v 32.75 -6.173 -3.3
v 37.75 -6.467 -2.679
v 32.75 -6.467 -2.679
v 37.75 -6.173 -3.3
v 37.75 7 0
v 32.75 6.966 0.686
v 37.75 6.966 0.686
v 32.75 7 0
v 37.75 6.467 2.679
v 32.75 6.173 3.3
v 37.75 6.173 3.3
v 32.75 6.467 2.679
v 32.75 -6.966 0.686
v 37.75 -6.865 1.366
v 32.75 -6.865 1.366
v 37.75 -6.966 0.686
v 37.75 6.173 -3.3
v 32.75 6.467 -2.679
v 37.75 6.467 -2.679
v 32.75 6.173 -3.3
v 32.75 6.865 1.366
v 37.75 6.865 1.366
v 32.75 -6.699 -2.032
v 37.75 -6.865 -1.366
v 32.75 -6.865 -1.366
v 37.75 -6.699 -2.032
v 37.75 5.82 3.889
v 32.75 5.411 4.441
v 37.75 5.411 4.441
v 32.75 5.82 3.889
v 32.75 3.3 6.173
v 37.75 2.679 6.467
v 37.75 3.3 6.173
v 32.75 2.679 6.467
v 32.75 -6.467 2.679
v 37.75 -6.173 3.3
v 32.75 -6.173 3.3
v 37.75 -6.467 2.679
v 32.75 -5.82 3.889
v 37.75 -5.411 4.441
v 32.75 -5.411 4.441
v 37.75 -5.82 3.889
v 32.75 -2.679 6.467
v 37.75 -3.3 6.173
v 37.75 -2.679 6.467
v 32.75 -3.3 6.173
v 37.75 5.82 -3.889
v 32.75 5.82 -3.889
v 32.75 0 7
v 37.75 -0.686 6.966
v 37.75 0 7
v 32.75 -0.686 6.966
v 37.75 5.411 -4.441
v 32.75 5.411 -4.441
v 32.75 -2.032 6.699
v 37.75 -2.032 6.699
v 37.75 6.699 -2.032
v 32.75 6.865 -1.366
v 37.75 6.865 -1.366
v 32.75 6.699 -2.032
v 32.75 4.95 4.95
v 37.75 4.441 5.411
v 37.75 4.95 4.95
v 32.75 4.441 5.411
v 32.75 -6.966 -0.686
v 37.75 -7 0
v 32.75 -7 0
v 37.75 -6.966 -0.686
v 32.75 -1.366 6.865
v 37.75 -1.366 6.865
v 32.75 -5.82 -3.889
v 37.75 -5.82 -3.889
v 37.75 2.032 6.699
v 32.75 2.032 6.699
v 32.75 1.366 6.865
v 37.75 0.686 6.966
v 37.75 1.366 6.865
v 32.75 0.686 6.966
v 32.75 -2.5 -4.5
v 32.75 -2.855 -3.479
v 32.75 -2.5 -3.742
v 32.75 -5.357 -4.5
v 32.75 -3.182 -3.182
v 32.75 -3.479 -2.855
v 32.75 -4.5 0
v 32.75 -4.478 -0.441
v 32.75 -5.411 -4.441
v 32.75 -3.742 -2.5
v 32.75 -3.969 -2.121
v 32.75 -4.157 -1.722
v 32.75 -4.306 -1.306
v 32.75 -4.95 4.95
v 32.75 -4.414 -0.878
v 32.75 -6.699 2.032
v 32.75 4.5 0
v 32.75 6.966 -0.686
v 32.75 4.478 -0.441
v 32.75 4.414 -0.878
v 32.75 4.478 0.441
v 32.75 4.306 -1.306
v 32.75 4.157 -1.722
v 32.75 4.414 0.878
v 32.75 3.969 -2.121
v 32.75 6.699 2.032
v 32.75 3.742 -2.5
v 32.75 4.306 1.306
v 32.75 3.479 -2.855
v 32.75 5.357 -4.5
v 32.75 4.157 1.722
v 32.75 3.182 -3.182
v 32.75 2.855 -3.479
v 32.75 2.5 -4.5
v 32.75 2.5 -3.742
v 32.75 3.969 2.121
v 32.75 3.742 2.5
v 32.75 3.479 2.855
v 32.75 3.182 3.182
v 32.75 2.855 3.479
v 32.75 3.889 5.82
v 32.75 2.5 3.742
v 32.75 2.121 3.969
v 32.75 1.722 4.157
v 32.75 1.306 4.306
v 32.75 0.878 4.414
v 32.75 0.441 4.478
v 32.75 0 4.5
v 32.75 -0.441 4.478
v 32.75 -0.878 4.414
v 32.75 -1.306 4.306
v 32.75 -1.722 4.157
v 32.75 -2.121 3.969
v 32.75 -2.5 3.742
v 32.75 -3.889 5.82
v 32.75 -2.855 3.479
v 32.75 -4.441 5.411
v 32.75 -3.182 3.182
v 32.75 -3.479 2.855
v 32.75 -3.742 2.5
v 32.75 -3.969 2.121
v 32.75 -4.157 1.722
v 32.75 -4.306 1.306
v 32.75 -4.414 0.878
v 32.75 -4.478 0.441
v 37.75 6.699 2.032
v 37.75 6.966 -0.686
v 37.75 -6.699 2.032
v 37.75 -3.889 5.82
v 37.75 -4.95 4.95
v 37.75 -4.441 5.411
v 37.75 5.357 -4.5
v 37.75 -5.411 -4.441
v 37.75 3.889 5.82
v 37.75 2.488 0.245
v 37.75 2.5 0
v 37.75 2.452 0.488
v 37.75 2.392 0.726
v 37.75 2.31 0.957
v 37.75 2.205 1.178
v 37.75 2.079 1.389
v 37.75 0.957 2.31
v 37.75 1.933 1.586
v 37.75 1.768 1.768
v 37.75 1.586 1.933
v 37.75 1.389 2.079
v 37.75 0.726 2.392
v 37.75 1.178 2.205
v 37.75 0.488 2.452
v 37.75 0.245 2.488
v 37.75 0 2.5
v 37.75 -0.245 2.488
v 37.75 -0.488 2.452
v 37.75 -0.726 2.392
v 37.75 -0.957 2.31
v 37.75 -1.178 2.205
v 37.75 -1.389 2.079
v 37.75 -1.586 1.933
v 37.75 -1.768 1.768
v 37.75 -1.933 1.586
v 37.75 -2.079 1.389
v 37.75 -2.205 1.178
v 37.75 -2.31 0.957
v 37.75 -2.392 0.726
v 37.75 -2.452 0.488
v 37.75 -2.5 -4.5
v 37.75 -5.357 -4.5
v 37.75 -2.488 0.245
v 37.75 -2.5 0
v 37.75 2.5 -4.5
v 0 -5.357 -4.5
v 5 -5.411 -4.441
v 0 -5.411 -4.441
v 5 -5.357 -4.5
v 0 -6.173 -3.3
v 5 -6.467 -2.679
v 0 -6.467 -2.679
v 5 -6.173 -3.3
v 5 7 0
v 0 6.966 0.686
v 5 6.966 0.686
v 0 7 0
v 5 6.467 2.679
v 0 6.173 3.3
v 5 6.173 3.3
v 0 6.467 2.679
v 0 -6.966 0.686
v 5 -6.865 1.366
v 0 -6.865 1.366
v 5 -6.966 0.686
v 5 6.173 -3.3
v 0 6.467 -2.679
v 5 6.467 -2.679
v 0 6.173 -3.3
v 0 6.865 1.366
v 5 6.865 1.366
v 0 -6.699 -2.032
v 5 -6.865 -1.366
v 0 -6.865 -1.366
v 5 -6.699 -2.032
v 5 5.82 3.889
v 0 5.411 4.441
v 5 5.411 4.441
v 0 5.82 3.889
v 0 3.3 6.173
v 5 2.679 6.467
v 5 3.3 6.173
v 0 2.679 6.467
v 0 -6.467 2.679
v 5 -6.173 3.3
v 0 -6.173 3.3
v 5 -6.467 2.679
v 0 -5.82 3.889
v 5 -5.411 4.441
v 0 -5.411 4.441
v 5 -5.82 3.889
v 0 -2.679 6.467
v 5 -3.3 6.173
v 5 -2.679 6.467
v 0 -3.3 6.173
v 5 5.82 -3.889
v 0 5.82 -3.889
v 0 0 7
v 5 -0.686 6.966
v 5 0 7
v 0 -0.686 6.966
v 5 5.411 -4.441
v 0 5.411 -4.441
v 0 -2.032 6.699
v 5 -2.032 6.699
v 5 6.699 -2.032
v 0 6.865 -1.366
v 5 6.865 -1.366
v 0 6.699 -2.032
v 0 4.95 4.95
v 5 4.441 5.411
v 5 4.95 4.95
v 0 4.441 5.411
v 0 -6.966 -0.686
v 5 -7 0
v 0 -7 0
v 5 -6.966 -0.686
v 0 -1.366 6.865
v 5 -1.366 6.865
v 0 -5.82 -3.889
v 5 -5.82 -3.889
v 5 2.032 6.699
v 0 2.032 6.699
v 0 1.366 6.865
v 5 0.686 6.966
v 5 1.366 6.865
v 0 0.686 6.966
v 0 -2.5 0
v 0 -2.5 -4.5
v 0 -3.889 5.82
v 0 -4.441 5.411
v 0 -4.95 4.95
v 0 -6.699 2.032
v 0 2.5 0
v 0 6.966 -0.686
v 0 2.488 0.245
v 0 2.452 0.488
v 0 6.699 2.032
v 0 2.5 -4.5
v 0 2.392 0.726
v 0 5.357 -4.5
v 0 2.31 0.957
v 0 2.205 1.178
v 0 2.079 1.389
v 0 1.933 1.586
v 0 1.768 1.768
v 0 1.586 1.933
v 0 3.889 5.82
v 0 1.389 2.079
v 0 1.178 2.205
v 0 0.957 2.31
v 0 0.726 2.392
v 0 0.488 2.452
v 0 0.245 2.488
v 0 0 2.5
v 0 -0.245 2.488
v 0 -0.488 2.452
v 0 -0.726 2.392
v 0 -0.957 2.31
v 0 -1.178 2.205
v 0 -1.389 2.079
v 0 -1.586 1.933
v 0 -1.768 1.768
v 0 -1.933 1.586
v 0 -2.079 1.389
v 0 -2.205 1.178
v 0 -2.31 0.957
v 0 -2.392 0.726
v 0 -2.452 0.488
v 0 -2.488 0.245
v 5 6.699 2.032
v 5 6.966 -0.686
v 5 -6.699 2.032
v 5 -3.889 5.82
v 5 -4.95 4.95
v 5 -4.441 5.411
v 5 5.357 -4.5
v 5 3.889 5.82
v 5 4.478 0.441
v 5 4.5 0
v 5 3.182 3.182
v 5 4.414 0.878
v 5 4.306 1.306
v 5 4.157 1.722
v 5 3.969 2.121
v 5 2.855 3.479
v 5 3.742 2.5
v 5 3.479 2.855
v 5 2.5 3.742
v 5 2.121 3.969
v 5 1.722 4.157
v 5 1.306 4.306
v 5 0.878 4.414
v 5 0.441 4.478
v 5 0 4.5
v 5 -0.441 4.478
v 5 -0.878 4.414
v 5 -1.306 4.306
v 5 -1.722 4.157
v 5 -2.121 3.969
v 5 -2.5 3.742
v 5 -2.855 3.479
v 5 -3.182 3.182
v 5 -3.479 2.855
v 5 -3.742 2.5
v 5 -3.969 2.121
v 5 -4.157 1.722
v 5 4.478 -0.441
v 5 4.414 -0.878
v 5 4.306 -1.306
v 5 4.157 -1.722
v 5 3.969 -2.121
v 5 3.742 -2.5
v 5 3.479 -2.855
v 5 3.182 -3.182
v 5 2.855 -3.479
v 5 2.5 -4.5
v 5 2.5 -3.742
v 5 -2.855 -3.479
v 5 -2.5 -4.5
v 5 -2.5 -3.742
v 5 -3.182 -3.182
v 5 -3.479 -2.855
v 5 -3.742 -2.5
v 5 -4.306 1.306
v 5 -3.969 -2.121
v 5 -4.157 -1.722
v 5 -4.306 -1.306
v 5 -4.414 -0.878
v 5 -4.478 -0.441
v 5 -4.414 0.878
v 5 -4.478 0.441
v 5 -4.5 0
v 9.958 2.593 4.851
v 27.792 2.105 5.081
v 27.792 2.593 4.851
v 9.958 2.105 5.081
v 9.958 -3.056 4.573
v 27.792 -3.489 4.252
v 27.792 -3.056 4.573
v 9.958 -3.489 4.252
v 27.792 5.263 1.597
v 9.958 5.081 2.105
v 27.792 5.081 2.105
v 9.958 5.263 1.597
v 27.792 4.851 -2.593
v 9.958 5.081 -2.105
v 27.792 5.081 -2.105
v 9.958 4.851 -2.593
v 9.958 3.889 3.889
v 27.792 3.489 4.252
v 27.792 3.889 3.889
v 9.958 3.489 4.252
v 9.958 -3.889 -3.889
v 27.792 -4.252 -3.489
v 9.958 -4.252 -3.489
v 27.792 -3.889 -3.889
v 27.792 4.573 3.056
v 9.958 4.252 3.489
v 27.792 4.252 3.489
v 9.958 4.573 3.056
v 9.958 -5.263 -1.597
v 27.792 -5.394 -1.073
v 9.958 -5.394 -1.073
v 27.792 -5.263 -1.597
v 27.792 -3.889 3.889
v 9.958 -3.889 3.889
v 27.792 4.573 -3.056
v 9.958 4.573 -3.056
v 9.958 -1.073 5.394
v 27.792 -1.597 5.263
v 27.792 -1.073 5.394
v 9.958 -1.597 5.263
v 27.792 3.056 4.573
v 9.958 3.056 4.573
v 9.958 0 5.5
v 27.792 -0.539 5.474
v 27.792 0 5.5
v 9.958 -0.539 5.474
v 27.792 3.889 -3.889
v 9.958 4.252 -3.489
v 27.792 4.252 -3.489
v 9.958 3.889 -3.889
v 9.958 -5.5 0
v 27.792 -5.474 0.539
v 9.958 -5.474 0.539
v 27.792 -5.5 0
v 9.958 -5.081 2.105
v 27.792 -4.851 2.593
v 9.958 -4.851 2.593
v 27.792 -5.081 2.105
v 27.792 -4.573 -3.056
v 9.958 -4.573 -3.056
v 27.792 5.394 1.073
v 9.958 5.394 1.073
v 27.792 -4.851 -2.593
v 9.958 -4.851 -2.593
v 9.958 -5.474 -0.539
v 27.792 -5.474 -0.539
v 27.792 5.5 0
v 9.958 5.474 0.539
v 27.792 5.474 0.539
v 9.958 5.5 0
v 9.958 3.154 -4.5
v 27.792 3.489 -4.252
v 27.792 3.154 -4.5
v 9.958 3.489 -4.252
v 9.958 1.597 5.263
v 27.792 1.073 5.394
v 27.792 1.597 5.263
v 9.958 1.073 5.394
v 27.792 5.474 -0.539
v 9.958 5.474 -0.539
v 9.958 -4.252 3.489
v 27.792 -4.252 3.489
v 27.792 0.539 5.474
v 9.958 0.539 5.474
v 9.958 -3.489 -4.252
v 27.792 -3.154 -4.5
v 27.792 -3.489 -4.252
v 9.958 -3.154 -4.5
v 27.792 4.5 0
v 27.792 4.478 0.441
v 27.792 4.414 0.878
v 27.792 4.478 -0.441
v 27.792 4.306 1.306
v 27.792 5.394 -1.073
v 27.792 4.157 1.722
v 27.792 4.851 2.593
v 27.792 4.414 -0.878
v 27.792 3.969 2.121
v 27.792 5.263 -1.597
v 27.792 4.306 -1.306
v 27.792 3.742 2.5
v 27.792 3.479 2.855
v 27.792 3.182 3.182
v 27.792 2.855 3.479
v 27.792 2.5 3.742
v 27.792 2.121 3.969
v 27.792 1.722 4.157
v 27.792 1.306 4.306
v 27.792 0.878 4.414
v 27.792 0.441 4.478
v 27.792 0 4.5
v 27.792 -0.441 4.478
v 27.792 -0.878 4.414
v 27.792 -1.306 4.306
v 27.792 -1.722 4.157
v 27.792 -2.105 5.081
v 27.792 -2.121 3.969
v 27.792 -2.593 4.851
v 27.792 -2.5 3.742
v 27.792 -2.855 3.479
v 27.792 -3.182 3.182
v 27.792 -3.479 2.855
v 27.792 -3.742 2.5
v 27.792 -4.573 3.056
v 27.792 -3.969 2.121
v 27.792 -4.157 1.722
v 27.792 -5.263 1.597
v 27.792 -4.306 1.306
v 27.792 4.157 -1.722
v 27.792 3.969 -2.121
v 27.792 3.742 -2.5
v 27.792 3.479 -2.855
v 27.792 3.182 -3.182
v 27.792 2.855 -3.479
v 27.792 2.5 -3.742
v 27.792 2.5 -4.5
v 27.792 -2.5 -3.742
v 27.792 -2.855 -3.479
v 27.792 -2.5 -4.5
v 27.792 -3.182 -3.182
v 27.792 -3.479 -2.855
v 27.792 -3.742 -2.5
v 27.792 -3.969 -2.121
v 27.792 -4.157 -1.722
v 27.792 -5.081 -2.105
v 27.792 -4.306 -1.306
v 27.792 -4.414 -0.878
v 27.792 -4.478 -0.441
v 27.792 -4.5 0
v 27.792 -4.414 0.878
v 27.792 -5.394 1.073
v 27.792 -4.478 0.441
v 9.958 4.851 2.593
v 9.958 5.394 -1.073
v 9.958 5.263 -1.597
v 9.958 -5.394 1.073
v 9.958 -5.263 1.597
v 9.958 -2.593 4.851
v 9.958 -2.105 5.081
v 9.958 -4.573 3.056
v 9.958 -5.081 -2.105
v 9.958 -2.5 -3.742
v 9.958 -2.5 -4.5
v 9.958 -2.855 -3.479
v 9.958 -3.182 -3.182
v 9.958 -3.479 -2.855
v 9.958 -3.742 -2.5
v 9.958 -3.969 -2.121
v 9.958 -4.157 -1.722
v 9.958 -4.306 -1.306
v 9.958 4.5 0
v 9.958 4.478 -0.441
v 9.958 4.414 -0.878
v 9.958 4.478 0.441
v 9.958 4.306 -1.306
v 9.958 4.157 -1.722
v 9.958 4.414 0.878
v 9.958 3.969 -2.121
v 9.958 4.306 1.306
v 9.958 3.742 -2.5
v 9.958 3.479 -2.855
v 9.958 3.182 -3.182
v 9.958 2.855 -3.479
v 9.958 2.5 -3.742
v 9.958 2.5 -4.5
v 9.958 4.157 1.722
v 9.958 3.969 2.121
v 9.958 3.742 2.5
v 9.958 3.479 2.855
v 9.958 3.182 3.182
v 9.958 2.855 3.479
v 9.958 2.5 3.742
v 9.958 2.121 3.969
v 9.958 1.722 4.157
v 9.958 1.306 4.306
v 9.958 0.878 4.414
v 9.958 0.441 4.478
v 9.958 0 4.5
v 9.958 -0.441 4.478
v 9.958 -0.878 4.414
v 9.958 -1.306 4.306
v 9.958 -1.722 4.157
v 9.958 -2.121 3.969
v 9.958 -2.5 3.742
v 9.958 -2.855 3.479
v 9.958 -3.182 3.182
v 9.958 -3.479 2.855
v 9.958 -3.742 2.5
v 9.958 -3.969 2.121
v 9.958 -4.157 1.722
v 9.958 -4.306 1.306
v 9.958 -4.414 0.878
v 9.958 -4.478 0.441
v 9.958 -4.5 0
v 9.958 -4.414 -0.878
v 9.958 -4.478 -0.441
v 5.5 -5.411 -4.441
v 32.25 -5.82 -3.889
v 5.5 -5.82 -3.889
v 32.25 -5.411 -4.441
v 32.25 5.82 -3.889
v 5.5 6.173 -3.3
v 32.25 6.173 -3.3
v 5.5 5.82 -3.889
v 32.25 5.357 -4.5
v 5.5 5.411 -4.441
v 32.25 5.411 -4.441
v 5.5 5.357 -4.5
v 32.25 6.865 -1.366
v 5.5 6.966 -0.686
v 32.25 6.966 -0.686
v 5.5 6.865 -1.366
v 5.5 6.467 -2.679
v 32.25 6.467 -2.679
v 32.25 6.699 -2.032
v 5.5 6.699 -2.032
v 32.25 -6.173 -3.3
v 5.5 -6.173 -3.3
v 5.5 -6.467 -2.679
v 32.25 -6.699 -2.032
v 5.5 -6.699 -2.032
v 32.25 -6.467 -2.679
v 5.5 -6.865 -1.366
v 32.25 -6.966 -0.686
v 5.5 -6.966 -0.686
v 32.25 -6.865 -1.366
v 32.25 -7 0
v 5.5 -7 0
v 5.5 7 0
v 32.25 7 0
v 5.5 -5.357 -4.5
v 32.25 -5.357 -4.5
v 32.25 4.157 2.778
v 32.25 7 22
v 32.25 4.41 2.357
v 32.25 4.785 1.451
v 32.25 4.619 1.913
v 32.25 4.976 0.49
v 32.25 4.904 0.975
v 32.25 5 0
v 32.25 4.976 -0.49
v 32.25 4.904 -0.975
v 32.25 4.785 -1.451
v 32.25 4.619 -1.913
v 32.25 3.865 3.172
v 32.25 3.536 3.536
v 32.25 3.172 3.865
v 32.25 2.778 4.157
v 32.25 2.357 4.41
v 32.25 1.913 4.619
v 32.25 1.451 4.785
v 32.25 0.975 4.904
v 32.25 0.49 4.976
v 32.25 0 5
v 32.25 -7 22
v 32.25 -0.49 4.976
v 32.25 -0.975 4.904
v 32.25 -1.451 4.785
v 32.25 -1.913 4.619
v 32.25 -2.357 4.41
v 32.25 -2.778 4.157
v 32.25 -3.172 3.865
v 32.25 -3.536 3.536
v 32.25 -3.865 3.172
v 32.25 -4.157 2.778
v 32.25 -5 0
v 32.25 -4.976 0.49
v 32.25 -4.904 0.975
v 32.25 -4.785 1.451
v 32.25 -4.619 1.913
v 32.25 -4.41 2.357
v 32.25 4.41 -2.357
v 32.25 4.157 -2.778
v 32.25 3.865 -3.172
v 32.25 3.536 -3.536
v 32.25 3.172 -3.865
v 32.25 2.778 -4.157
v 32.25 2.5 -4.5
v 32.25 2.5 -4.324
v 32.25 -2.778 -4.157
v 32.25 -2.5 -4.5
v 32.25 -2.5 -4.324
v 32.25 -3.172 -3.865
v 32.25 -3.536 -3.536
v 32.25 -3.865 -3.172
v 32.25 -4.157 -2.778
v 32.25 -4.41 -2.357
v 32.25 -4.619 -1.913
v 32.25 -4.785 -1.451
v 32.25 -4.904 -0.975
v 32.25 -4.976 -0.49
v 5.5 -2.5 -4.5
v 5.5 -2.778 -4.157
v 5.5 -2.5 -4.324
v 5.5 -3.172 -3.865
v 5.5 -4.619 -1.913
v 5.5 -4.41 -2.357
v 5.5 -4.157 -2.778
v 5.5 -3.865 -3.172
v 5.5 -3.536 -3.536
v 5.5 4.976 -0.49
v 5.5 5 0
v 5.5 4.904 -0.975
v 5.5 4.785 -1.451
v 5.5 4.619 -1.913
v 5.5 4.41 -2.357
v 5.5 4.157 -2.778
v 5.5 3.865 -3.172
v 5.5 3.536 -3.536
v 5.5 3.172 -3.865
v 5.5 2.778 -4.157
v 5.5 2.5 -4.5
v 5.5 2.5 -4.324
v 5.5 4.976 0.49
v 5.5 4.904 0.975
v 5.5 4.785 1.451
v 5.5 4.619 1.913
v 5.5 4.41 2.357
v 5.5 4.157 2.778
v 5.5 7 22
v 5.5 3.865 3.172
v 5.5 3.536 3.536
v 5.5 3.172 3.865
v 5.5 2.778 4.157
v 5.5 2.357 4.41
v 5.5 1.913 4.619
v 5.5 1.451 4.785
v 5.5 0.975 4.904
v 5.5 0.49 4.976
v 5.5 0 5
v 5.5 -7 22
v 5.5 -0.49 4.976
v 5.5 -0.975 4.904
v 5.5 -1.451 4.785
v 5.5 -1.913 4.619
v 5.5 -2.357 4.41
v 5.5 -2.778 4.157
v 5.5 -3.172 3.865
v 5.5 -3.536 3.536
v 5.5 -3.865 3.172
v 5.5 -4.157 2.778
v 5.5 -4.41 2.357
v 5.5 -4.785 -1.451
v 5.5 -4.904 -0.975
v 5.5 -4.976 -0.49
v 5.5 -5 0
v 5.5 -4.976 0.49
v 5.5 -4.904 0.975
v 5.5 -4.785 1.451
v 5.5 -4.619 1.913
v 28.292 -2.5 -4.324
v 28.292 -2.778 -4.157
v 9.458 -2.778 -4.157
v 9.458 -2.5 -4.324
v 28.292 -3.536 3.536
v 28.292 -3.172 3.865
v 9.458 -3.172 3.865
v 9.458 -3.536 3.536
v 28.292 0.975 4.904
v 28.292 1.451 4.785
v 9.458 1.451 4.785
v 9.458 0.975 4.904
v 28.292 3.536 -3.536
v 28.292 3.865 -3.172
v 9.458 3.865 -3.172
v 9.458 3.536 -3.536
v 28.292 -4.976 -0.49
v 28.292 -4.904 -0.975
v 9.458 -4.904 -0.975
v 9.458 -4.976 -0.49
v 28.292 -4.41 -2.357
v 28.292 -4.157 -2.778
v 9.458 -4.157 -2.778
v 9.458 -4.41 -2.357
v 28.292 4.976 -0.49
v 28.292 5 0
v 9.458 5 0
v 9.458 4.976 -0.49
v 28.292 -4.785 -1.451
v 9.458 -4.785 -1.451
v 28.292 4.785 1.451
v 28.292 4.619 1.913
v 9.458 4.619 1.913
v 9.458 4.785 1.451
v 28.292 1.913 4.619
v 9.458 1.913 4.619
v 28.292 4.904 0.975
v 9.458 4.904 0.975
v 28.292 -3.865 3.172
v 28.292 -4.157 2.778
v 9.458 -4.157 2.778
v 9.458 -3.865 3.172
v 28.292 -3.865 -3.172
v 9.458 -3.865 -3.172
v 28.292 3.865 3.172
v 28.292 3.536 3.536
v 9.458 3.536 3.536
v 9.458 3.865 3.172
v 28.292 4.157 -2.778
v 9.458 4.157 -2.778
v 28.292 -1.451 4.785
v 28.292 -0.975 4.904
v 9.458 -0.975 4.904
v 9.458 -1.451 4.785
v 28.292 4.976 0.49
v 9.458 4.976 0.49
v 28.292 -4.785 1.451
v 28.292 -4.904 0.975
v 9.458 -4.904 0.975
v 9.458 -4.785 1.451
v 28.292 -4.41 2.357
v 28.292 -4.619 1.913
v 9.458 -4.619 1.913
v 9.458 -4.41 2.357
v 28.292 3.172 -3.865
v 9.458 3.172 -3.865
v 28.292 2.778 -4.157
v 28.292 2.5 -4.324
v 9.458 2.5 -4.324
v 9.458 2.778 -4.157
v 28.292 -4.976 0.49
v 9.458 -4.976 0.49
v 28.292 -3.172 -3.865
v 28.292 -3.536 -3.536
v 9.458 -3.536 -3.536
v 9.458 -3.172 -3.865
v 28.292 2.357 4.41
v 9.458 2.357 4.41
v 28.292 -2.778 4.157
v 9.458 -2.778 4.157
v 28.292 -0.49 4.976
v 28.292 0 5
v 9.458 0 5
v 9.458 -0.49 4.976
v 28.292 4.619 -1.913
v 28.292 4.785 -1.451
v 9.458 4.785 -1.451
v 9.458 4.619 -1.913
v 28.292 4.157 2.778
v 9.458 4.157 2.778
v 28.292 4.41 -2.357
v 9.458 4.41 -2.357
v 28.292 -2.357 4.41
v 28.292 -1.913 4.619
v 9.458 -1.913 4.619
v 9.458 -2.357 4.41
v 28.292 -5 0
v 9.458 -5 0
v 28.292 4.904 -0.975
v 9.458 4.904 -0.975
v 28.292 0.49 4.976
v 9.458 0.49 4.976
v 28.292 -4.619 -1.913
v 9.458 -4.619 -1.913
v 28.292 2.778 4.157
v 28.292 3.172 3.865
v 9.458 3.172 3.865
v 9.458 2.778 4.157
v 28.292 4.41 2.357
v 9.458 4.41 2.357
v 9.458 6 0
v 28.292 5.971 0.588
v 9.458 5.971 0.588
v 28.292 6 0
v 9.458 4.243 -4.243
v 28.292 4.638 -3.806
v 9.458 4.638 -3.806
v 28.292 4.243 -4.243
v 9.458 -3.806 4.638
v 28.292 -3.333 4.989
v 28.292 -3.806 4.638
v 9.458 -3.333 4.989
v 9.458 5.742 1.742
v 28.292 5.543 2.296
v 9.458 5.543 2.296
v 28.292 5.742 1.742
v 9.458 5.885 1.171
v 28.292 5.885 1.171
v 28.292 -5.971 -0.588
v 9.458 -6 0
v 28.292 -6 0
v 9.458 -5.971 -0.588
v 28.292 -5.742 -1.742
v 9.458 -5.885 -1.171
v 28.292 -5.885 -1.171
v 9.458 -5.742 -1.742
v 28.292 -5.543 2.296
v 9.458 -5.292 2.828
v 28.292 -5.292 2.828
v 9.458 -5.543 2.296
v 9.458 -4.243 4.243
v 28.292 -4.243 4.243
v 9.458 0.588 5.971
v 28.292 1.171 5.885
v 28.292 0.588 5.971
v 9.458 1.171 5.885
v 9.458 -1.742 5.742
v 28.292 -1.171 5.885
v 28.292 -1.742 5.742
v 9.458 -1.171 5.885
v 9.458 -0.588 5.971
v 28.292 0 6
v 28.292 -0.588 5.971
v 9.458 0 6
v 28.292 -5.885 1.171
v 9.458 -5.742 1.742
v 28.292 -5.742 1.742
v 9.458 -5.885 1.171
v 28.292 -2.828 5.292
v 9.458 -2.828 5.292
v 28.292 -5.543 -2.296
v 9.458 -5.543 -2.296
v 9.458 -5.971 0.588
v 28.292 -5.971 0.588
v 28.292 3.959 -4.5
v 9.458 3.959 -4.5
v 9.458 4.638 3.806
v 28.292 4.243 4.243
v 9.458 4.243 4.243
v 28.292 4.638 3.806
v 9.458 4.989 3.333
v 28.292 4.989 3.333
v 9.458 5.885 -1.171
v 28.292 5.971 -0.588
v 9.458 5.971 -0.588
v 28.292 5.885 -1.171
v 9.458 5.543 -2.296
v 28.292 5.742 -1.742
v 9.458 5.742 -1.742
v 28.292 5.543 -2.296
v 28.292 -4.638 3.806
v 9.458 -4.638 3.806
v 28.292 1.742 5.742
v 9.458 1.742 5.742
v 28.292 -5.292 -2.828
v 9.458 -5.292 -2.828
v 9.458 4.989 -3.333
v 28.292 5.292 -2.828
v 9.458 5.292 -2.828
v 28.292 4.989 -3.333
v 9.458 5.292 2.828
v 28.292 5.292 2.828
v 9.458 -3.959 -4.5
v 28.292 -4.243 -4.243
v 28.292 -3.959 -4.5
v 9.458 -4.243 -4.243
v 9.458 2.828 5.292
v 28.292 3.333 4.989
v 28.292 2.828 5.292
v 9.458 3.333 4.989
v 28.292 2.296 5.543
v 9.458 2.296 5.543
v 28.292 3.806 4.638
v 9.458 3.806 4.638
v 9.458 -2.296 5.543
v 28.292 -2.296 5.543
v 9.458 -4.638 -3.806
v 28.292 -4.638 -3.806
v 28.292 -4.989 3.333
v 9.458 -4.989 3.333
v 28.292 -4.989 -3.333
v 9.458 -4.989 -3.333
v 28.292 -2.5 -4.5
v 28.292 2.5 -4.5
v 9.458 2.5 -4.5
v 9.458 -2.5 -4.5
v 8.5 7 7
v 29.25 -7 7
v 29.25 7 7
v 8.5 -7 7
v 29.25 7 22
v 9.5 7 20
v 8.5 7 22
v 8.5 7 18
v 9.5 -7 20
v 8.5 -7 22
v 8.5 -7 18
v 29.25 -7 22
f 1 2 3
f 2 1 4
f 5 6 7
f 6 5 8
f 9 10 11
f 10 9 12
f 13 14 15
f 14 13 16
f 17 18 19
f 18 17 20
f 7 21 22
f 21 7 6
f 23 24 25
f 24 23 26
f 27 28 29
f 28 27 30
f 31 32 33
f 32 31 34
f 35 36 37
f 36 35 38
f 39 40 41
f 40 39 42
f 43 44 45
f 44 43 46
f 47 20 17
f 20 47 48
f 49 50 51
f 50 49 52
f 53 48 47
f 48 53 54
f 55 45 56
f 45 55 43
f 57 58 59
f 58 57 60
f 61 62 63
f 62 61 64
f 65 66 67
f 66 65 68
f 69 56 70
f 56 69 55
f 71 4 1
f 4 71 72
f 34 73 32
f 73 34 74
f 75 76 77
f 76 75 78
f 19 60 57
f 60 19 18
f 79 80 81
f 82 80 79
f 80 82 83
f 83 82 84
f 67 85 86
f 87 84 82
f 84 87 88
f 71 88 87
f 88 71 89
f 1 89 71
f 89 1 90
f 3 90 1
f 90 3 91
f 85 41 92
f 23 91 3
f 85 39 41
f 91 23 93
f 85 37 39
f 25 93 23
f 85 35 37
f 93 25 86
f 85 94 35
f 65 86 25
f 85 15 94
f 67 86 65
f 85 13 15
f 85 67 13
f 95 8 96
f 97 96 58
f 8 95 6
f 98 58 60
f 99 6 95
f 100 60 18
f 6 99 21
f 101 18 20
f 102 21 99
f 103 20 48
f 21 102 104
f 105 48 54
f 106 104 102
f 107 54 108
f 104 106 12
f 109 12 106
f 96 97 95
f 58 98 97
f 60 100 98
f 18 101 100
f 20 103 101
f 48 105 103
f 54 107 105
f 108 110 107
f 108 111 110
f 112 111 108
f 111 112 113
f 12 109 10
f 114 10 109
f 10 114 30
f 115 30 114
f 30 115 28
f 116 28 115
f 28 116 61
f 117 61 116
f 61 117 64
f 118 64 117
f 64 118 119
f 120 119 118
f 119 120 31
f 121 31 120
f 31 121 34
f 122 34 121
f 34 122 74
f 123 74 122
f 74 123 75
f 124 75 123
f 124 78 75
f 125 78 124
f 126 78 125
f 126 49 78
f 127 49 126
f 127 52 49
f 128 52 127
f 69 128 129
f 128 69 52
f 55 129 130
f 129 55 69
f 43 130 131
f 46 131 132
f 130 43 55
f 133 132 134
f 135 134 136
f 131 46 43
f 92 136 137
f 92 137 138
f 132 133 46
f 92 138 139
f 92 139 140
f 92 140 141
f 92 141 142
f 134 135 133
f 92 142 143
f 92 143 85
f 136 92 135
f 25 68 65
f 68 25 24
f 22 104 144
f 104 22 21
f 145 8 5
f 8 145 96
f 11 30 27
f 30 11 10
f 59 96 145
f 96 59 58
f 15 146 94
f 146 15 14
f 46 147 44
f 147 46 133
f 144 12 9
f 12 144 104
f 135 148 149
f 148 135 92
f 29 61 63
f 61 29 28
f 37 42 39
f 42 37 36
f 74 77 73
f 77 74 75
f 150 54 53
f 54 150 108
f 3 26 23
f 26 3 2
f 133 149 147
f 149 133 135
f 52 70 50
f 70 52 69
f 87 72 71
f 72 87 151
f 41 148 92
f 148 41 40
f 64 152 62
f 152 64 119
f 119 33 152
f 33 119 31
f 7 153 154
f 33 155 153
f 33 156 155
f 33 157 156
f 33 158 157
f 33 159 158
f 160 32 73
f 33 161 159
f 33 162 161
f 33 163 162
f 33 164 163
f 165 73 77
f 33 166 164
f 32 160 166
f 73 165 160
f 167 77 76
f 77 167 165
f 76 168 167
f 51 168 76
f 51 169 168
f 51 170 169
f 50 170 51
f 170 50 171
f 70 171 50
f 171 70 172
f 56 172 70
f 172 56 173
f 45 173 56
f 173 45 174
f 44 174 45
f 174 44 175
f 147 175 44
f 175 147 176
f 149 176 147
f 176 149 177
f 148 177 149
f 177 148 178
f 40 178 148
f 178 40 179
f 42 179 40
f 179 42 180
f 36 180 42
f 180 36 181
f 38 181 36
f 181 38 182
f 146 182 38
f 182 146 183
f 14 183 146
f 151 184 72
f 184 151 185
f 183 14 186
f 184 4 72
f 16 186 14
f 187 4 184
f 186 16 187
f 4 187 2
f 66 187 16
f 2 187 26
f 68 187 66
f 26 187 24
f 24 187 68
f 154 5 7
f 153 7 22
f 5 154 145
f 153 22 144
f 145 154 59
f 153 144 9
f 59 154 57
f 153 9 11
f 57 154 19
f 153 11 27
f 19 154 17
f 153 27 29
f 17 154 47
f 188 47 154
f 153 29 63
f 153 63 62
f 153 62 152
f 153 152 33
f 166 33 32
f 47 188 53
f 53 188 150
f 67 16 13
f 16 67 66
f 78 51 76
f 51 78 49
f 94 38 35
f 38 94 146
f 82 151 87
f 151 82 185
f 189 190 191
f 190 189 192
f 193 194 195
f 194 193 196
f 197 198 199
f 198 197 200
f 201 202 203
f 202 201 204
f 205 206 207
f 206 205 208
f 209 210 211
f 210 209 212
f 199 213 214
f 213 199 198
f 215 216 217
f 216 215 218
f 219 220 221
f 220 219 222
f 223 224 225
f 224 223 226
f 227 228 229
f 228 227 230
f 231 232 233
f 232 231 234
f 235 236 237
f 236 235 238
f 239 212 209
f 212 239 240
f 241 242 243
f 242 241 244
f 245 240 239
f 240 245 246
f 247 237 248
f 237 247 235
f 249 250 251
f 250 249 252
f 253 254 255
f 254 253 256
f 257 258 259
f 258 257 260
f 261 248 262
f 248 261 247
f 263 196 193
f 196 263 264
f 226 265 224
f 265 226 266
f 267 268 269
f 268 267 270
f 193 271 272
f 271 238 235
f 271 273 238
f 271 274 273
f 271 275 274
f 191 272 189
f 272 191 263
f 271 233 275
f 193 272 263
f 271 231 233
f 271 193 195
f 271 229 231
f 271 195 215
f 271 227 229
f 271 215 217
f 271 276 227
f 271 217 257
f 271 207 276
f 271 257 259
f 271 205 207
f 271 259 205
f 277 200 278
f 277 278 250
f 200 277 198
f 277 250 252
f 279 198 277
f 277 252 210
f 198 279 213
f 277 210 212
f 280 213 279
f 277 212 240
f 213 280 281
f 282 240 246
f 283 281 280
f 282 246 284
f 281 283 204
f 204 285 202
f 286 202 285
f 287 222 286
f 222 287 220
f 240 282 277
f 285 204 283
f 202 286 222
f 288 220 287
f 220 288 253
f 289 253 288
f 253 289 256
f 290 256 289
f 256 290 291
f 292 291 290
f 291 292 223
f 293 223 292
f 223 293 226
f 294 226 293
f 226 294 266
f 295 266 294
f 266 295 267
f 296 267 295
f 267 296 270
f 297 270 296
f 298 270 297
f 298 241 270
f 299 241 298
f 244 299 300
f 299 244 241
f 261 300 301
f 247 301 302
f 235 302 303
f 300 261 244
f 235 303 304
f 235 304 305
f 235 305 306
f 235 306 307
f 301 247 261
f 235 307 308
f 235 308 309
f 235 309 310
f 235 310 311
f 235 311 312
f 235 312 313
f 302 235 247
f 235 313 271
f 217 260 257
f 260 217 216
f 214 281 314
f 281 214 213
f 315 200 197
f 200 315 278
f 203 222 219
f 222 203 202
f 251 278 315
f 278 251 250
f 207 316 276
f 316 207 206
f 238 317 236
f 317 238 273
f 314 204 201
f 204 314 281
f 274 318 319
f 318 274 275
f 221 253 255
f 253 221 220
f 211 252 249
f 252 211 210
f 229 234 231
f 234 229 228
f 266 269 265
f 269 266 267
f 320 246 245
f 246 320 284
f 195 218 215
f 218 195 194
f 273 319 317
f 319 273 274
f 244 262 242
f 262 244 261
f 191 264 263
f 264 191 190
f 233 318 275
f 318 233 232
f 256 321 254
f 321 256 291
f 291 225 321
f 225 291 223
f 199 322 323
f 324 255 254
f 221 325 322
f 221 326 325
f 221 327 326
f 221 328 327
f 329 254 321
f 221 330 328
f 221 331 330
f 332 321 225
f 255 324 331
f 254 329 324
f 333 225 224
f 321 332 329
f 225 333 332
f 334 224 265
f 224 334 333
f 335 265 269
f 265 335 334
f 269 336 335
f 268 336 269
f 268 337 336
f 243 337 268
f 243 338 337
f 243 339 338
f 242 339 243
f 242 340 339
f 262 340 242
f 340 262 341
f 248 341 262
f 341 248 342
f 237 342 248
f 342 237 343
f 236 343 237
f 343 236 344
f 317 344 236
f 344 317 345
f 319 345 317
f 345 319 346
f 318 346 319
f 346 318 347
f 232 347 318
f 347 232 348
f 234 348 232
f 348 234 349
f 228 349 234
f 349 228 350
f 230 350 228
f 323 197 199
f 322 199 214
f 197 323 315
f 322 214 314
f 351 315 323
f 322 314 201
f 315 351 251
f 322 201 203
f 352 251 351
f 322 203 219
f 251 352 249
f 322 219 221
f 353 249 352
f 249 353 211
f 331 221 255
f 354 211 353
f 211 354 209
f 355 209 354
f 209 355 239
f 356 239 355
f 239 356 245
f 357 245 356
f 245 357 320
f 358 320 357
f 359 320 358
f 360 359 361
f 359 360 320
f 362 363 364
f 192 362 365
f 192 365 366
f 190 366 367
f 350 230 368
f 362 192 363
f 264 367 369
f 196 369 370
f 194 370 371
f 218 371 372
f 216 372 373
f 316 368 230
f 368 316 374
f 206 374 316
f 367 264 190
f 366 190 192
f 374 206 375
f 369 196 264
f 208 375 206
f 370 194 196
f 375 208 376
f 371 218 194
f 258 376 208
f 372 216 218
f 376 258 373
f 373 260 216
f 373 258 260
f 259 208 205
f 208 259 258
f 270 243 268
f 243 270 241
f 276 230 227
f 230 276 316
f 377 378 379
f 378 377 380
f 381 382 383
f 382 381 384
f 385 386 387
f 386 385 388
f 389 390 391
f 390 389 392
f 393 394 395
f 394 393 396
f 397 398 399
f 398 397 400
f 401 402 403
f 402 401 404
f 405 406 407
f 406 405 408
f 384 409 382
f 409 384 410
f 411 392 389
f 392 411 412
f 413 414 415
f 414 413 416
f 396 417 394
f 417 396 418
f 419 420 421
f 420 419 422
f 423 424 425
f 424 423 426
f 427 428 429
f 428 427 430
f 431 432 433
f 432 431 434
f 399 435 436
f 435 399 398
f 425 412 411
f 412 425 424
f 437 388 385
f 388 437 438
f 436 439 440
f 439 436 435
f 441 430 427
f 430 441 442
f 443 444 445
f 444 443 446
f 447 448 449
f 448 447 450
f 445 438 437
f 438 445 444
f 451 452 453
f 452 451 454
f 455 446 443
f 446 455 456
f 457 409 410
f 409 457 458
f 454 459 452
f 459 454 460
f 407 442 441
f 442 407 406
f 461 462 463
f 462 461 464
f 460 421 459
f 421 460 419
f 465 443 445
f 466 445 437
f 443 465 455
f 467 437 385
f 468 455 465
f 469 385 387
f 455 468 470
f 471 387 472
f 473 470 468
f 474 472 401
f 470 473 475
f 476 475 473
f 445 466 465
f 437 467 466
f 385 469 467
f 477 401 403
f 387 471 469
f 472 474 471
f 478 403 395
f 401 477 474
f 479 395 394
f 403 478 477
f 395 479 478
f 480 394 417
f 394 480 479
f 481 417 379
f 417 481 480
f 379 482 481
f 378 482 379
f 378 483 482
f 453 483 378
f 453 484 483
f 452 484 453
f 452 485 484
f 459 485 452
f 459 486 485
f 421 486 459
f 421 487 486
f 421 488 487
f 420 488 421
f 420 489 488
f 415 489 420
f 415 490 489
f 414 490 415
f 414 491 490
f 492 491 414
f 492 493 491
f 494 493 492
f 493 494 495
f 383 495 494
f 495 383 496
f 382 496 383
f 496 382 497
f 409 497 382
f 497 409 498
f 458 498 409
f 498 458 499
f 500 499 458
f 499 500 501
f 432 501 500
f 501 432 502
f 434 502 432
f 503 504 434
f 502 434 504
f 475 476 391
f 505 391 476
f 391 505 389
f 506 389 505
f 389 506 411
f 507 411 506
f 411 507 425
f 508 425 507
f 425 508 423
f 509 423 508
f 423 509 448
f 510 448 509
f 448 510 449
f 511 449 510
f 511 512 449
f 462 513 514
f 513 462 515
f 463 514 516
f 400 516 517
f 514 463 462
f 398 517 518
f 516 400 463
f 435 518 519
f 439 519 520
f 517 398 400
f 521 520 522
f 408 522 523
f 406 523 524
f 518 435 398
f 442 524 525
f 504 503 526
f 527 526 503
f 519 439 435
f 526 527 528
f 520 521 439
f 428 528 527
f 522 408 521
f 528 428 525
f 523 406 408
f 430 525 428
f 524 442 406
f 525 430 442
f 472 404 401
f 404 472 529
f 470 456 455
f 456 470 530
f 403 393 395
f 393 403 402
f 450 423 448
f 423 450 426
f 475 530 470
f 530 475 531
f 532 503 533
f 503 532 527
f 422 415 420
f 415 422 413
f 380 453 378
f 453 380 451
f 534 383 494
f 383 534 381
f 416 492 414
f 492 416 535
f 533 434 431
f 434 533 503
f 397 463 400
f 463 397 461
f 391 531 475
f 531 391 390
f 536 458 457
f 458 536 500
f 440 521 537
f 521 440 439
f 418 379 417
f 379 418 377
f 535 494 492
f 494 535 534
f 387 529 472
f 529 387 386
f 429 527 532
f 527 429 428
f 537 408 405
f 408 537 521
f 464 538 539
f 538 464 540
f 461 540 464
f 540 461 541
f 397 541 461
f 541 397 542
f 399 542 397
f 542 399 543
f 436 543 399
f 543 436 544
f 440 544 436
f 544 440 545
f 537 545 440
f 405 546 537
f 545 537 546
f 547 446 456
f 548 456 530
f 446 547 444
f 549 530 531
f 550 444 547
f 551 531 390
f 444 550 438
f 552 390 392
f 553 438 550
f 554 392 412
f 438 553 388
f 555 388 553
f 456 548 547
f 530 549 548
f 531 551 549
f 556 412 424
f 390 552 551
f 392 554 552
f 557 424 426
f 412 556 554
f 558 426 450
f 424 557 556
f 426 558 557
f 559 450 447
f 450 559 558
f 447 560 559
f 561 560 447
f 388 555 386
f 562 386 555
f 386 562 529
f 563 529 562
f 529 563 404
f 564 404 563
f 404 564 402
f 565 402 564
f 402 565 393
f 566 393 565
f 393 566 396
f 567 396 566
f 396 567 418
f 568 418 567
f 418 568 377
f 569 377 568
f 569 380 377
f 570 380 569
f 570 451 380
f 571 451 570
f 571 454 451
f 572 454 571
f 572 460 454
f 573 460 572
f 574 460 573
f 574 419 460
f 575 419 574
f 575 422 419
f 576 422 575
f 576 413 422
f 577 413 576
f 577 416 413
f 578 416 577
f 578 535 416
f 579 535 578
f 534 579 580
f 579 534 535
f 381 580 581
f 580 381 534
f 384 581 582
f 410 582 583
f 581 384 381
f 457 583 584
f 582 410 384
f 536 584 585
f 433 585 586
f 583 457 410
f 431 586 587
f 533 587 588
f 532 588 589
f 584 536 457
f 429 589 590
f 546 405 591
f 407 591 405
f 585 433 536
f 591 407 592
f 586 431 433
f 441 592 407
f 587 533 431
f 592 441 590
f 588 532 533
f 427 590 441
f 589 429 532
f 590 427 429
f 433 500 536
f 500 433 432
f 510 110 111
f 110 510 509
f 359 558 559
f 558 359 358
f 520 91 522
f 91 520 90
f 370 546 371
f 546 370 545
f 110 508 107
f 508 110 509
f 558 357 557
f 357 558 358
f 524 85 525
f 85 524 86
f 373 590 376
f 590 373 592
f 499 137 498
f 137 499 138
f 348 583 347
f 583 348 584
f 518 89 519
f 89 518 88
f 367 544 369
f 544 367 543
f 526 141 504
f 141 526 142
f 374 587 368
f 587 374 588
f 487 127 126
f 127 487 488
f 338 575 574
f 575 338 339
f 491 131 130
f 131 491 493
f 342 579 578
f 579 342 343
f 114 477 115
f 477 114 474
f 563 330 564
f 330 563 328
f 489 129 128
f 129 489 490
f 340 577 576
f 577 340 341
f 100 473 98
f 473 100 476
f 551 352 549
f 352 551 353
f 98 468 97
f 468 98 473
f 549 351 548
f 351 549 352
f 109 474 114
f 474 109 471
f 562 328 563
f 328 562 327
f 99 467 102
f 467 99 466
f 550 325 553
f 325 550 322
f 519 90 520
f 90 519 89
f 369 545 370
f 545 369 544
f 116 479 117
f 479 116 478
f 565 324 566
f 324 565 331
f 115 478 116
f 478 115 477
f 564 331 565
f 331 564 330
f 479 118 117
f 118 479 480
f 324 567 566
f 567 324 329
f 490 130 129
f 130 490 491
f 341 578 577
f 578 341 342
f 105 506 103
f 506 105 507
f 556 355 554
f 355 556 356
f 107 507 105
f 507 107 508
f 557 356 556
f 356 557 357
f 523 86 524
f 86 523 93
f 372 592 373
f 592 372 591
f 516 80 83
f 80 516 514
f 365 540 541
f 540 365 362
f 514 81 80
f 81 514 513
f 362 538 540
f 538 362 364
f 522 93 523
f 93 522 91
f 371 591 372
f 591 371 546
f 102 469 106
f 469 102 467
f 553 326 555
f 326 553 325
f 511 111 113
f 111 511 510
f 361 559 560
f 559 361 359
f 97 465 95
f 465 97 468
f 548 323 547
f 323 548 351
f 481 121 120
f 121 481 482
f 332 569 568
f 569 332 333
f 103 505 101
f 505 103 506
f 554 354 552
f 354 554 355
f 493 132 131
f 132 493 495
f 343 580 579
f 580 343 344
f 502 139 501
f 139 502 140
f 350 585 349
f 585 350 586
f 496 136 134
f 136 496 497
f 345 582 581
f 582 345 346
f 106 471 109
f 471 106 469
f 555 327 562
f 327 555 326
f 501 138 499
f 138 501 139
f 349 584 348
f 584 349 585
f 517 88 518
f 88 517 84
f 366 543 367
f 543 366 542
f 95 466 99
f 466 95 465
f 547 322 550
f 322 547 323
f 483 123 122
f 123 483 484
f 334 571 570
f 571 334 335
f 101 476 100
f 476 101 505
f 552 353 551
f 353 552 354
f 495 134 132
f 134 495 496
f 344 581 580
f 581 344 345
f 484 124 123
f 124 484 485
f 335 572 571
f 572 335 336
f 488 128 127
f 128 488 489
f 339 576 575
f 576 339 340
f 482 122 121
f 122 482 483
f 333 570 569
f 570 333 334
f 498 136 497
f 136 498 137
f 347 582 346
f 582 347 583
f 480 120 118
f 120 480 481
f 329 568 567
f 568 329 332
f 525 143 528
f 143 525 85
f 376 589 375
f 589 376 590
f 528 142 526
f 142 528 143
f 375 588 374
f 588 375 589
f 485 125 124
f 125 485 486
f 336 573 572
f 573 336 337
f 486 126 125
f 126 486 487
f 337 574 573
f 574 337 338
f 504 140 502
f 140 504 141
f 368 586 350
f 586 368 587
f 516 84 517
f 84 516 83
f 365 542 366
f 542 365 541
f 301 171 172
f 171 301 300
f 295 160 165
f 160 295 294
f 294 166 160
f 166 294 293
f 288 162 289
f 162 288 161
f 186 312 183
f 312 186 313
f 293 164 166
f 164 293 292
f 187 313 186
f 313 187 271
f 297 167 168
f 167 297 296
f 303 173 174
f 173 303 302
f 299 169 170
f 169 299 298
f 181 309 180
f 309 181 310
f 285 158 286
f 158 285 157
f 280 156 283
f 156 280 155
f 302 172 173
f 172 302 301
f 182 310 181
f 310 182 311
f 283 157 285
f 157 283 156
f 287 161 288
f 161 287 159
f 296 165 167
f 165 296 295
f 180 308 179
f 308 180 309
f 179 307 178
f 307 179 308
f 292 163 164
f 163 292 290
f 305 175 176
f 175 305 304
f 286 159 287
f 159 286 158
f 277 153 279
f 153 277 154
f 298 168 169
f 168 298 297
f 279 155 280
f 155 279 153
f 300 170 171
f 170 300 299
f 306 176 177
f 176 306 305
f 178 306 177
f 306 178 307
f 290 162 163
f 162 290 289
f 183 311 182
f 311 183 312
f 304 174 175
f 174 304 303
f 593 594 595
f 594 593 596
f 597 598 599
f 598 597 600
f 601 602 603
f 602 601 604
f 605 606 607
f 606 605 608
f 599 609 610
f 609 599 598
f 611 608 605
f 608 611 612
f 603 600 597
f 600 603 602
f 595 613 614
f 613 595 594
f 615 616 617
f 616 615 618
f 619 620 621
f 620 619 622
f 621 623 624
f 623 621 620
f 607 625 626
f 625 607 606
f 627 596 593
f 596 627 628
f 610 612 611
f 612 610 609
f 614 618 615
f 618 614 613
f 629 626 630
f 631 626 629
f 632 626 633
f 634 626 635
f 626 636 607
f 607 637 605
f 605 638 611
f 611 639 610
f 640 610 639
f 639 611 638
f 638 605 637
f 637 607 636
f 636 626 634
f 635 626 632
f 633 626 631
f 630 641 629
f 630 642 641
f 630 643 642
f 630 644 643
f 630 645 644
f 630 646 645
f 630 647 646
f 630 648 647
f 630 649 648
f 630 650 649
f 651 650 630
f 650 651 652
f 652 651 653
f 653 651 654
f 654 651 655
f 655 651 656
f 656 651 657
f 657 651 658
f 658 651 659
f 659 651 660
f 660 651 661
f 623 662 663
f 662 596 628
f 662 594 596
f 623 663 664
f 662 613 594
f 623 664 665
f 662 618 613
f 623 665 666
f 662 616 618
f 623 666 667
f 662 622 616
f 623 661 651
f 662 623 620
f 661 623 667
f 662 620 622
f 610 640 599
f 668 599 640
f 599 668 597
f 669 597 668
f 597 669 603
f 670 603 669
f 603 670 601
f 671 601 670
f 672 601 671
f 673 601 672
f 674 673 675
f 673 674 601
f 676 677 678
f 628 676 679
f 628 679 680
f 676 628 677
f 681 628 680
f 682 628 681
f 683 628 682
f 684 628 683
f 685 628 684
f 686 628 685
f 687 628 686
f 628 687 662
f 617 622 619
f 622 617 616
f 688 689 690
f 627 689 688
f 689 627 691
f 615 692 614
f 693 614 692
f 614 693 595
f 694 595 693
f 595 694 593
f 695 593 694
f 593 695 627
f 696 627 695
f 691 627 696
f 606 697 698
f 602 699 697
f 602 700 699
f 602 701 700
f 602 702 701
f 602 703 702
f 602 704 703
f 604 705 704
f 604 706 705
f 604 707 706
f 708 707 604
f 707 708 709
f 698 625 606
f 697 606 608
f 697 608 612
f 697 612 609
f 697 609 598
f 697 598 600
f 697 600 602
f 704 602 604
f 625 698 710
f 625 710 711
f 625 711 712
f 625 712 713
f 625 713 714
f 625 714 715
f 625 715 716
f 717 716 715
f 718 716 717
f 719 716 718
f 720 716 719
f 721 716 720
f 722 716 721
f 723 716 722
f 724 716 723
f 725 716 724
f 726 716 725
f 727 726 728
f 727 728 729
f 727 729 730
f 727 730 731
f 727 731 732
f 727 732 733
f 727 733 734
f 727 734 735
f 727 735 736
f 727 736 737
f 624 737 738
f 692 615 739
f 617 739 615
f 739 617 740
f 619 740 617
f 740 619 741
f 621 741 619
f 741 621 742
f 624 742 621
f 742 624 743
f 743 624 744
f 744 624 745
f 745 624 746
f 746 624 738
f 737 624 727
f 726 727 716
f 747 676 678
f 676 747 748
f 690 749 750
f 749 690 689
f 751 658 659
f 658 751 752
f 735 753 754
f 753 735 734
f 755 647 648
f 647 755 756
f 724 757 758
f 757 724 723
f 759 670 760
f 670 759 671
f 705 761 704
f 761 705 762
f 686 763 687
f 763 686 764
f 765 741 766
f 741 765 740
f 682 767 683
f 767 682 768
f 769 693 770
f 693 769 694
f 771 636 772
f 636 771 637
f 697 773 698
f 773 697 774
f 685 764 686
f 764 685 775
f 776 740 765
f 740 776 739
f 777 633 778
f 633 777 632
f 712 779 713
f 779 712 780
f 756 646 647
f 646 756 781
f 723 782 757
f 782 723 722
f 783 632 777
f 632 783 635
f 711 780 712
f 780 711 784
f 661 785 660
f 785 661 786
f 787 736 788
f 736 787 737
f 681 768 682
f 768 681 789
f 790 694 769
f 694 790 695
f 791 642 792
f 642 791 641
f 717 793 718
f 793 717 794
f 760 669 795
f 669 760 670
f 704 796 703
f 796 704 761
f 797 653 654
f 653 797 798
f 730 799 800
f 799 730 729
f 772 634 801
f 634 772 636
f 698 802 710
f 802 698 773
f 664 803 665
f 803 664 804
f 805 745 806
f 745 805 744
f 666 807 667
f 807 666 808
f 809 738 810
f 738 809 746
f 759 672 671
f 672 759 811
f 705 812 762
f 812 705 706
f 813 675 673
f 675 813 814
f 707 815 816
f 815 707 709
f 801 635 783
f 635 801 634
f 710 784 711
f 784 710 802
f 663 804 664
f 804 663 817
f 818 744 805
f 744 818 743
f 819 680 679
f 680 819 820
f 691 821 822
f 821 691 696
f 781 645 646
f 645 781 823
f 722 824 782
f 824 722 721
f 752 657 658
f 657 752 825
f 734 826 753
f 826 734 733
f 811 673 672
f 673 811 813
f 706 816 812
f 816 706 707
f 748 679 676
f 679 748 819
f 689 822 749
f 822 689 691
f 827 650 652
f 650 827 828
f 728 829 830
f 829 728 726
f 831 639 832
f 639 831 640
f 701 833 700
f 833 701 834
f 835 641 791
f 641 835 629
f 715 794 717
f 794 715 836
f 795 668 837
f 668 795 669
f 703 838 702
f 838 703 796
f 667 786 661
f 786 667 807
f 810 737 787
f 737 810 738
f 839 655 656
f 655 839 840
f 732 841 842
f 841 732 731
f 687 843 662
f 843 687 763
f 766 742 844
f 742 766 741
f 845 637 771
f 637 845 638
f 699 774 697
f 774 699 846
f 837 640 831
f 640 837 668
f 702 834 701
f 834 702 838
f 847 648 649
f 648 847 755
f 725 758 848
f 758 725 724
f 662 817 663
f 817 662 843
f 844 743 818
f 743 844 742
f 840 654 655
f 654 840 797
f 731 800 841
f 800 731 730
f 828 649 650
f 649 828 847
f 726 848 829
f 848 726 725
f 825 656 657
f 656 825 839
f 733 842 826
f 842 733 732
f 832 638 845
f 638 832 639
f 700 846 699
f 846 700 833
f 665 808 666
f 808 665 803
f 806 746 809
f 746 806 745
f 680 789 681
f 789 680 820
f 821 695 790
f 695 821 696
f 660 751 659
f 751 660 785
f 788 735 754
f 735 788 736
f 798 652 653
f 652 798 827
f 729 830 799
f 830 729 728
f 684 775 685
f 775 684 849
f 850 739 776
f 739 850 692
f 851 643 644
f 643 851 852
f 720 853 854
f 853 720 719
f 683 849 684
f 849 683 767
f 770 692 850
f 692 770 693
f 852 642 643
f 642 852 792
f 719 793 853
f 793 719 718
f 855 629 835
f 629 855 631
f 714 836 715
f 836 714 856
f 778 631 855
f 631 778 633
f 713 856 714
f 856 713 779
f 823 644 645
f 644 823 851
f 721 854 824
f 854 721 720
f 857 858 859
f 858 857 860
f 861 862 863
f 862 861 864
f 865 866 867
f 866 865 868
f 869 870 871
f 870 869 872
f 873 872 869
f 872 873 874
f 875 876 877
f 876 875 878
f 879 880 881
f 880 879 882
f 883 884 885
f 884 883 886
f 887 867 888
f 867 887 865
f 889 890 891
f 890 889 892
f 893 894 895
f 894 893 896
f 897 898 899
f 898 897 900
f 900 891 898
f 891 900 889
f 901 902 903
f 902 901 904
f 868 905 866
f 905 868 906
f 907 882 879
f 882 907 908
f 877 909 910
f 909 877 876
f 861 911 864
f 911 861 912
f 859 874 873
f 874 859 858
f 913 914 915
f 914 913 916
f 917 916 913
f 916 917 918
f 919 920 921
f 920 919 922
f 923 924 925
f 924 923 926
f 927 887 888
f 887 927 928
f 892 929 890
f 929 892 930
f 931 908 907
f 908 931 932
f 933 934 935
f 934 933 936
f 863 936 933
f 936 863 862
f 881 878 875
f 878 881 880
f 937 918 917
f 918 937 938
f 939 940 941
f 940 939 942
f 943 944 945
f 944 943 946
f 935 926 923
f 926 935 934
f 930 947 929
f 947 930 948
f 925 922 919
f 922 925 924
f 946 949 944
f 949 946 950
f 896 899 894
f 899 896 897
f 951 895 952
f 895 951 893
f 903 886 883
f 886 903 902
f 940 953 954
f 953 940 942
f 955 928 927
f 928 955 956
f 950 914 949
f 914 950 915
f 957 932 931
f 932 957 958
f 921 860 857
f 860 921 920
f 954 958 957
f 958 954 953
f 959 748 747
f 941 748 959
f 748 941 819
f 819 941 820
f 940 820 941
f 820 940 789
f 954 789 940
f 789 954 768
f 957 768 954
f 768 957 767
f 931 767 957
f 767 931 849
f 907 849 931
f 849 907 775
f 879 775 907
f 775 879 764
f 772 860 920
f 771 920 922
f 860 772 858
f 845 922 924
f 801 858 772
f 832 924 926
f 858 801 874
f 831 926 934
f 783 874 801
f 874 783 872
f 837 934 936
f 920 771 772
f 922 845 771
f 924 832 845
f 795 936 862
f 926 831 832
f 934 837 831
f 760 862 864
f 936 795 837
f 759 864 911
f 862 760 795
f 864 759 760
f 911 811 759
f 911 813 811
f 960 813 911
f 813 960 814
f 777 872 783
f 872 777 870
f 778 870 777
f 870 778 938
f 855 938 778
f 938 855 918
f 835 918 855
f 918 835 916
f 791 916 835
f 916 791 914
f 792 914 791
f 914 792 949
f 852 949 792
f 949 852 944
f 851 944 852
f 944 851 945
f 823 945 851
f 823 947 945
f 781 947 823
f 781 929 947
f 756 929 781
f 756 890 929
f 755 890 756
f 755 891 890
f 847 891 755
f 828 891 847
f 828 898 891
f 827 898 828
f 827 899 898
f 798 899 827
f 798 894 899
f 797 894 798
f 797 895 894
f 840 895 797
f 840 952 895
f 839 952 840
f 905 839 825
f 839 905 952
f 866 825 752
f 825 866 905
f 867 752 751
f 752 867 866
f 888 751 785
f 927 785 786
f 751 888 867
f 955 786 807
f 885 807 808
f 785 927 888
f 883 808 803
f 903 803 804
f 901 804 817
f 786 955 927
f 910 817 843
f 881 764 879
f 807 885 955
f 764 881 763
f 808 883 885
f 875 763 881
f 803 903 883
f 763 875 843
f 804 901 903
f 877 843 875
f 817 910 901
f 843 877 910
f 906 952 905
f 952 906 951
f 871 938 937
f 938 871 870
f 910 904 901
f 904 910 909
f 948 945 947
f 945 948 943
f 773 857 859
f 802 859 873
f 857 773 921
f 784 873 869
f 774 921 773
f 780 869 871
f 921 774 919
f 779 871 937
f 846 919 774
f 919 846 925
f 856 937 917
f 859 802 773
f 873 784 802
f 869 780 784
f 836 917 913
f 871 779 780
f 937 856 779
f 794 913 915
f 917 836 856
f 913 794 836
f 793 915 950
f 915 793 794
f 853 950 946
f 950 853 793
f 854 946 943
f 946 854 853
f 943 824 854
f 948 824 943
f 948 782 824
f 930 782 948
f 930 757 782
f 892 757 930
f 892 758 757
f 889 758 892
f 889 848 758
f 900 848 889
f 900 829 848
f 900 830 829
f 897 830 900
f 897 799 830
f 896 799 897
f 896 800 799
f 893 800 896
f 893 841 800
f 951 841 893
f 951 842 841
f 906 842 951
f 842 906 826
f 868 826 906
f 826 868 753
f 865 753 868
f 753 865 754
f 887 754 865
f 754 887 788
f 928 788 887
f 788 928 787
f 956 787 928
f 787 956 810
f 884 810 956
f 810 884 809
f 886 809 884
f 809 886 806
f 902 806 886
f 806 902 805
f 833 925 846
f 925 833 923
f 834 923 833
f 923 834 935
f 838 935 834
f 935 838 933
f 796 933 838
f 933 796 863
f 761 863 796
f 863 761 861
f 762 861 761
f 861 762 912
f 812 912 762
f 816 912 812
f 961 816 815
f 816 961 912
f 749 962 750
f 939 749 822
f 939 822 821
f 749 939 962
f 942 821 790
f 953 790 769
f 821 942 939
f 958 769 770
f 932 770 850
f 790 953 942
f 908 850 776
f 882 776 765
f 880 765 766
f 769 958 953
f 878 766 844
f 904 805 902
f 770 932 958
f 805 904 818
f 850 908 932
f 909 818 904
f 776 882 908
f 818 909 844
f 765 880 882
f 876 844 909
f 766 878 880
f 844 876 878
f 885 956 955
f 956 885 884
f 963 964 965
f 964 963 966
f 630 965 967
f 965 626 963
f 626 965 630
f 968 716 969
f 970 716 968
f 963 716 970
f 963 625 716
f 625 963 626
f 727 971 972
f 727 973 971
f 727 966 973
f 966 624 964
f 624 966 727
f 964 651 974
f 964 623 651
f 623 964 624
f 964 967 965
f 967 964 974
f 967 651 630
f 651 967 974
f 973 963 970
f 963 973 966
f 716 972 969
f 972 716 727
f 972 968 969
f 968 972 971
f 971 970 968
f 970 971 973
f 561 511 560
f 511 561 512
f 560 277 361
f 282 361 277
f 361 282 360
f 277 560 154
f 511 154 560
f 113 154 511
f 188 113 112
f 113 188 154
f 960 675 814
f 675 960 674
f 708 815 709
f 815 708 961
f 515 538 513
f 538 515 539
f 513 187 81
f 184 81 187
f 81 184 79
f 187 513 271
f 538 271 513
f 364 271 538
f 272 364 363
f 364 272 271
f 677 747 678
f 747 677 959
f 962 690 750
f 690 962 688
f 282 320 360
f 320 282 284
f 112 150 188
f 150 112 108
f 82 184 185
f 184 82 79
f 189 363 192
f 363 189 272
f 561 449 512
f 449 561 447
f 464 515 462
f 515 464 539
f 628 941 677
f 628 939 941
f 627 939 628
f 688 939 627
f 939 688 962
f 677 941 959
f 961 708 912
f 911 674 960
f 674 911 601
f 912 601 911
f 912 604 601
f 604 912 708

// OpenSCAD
/* [PrintOptions] */
// preview[view:south east, tilt:bottom diagonal]

// splits the cable holder into 2 parts for printing if your machine doesn't do well with printing tight tolerances
show_seperate = "no"; // [yes, no]

/* [Basic] */
// is the diameter of the cable in mm to be held by the cable holder
cable_diameter = 5;
// sets the distance between the holding tabs in mm
table_thickness = 20.75;
// controls the distance between moving parts of the cable holder
tolerance = 0.5;


/* [Table_tabs] */
// adjusts the length of the tabs in mm that will hold the cable holder on to the table
tab_length = 15;
// adjusts how thick the tabs that hold the cable holder to the table should be in mm
tab_thickness = 3;
// rounding the edges of the top of the tab
tab_corner_radius = 0.5;

/* [Table_grip] */
// adjusts the triangular grip protrusion height in mm
grip_height = 1;
// adjusts the base width of the triangular grip protrusion in mm
grip_width = 4;

/* [Thumbwheels] */
//controls how tall the end thumbwheels should be in mm
thumbwheel_height = 5;

/* [Advanced] */
// is confusing name, just play with it and see what it does
retainer_factor = 6; // [3, 4, 5, 6, 7, 8, 9, 10]
// is another one to play around with.  Choose values between 0 and 2
plane_cut_factor = 1;
// is the quality of the cylinders
$fn = $preview ? 8 : 64;

/* [Advanced_neck] */
// is the thickness of the inner rotating cuff in mm
neck_thickness = 2;

/* [Advanced_holder] */
// controls the overall thickness of the outer holder in mm
holder_thickness = 2;

/* [Hidden] */
barrel_lift_factor = 1/retainer_factor;
barrel_thickness = holder_thickness/2;

holder_height = 2*tab_thickness + table_thickness;
holder_diameter = cable_diameter + 2*neck_thickness + 2*tolerance + 2*holder_thickness;
plane_cut_depth = plane_cut_factor*(cable_diameter/2 + neck_thickness);

preview_tab = "";

rotate([0,90,0]) difference()
{

	// main holder barrels and tabs
	union()
	{
		// inner barrel
		
		if(show_seperate == "no")
		{
			InnerBarrel();
		}
		else
		{
			translate([0, holder_diameter + 5, 0]) 
			difference()
			{
				InnerBarrel();
				// cable notch
				translate([0, -cable_diameter/2, -0.5]) cube([holder_diameter/2 + 0.5, cable_diameter, thumbwheel_height + tolerance + holder_height + tolerance + thumbwheel_height + 1]);
				// plane slice
				translate([plane_cut_depth, -(holder_diameter + 1)/2, -0.5]) cube([holder_diameter/2 + 0.5, holder_diameter + 1, thumbwheel_height + tolerance + holder_height + tolerance + thumbwheel_height + 1]);
			}
		}
		
		// outer holder barrel
		highlight("Advanced_holder") difference()
		{
			// main body of the holder
			translate([0,0, thumbwheel_height + tolerance]) cylinder(r = holder_diameter/2, h = holder_height);
			// tolerance for neck
			translate([0,0,thumbwheel_height + tolerance + -0.5]) cylinder(r = cable_diameter/2 + neck_thickness + tolerance, h = holder_height + 1);
			// tolerance for the barrel
			translate([0,0, thumbwheel_height + tolerance + barrel_lift_factor*holder_height-tolerance]) cylinder(r = cable_diameter/2 + neck_thickness + barrel_thickness + tolerance, h = holder_height*(1-2*barrel_lift_factor) + 2*tolerance);
		}
		
		// main body holder
		union()
		{
			// upper tab
			highlight("Table_tabs") translate([-tab_length - holder_diameter/2, -holder_diameter/2, thumbwheel_height + tolerance + holder_height - tab_thickness]) /*rounded*/ cube([tab_length + 0.1, holder_diameter, tab_thickness], radius = tab_corner_radius, apply_to = "zmax");
			// lower tab
			highlight("Table_tabs") translate([-tab_length - holder_diameter/2, -holder_diameter/2, thumbwheel_height + tolerance]) cube([tab_length + 0.1, holder_diameter, tab_thickness]/*, apply_to = "zmin"*/);
			// lower grip
			highlight("Table_grip") translate([-tab_length - holder_diameter/2, holder_diameter/2,  thumbwheel_height + tolerance + tab_thickness]) rotate([90, 0, 0]) linear_extrude(height = holder_diameter, convexity = 10) polygon(points = [[0,0], [grip_width/2,grip_height], [grip_width,0], [grip_width,-0.1], [0,-0.1]]);
			
			// body block to  cylinder
			highlight("Advanced_holder") difference()
			{
				// main body block
				translate([-holder_diameter/2, -holder_diameter/2, thumbwheel_height + tolerance]) cube([holder_diameter/2, holder_diameter, holder_height]);
				// cylinder cut
				translate([0,0, thumbwheel_height + tolerance - 0.1]) cylinder(r = holder_diameter/2, h = holder_height + 1);
			}
		}
	}

	// cable notch
	translate([0, -cable_diameter/2, -0.5]) cube([holder_diameter/2 + 0.5, cable_diameter, thumbwheel_height + tolerance + holder_height + tolerance + thumbwheel_height + 1]);
	// plane slice
	translate([plane_cut_depth, -(holder_diameter + 1)/2, -0.5]) cube([holder_diameter/2 + 0.5, holder_diameter + 1, thumbwheel_height + tolerance + holder_height + tolerance + thumbwheel_height + 1]);
}

module InnerBarrel()
{
	difference()
		{
			union()
			{
				// top thumbwheel
				highlight("Thumbwheels") translate([0,0, thumbwheel_height + tolerance + holder_height+tolerance]) cylinder(r = holder_diameter/2, h = thumbwheel_height);
				// bottom thumbwheel
				highlight("Thumbwheels") cylinder(r = holder_diameter/2, h = thumbwheel_height);
				// retaining barrel
				translate([0,0, thumbwheel_height + tolerance + barrel_lift_factor*holder_height]) cylinder(r = cable_diameter/2 + neck_thickness + barrel_thickness, h = holder_height*(1-2*barrel_lift_factor));
				// the main barrel, or the "neck"
				highlight("Advanced_neck") cylinder(r = cable_diameter/2 + neck_thickness, h =thumbwheel_height + tolerance +  holder_height + tolerance + thumbwheel_height);
			}

			// The hole for the cable to go through
			translate([0,0,-.5]) cylinder(r = cable_diameter/2, h = thumbwheel_height + tolerance + holder_height + tolerance + thumbwheel_height + 1);
		}
}

module highlight(this_tab)
{
	if(preview_tab == this_tab)
	{
		color("red") children(0);
	}
	else
	{	
		children(0);
	}
}
